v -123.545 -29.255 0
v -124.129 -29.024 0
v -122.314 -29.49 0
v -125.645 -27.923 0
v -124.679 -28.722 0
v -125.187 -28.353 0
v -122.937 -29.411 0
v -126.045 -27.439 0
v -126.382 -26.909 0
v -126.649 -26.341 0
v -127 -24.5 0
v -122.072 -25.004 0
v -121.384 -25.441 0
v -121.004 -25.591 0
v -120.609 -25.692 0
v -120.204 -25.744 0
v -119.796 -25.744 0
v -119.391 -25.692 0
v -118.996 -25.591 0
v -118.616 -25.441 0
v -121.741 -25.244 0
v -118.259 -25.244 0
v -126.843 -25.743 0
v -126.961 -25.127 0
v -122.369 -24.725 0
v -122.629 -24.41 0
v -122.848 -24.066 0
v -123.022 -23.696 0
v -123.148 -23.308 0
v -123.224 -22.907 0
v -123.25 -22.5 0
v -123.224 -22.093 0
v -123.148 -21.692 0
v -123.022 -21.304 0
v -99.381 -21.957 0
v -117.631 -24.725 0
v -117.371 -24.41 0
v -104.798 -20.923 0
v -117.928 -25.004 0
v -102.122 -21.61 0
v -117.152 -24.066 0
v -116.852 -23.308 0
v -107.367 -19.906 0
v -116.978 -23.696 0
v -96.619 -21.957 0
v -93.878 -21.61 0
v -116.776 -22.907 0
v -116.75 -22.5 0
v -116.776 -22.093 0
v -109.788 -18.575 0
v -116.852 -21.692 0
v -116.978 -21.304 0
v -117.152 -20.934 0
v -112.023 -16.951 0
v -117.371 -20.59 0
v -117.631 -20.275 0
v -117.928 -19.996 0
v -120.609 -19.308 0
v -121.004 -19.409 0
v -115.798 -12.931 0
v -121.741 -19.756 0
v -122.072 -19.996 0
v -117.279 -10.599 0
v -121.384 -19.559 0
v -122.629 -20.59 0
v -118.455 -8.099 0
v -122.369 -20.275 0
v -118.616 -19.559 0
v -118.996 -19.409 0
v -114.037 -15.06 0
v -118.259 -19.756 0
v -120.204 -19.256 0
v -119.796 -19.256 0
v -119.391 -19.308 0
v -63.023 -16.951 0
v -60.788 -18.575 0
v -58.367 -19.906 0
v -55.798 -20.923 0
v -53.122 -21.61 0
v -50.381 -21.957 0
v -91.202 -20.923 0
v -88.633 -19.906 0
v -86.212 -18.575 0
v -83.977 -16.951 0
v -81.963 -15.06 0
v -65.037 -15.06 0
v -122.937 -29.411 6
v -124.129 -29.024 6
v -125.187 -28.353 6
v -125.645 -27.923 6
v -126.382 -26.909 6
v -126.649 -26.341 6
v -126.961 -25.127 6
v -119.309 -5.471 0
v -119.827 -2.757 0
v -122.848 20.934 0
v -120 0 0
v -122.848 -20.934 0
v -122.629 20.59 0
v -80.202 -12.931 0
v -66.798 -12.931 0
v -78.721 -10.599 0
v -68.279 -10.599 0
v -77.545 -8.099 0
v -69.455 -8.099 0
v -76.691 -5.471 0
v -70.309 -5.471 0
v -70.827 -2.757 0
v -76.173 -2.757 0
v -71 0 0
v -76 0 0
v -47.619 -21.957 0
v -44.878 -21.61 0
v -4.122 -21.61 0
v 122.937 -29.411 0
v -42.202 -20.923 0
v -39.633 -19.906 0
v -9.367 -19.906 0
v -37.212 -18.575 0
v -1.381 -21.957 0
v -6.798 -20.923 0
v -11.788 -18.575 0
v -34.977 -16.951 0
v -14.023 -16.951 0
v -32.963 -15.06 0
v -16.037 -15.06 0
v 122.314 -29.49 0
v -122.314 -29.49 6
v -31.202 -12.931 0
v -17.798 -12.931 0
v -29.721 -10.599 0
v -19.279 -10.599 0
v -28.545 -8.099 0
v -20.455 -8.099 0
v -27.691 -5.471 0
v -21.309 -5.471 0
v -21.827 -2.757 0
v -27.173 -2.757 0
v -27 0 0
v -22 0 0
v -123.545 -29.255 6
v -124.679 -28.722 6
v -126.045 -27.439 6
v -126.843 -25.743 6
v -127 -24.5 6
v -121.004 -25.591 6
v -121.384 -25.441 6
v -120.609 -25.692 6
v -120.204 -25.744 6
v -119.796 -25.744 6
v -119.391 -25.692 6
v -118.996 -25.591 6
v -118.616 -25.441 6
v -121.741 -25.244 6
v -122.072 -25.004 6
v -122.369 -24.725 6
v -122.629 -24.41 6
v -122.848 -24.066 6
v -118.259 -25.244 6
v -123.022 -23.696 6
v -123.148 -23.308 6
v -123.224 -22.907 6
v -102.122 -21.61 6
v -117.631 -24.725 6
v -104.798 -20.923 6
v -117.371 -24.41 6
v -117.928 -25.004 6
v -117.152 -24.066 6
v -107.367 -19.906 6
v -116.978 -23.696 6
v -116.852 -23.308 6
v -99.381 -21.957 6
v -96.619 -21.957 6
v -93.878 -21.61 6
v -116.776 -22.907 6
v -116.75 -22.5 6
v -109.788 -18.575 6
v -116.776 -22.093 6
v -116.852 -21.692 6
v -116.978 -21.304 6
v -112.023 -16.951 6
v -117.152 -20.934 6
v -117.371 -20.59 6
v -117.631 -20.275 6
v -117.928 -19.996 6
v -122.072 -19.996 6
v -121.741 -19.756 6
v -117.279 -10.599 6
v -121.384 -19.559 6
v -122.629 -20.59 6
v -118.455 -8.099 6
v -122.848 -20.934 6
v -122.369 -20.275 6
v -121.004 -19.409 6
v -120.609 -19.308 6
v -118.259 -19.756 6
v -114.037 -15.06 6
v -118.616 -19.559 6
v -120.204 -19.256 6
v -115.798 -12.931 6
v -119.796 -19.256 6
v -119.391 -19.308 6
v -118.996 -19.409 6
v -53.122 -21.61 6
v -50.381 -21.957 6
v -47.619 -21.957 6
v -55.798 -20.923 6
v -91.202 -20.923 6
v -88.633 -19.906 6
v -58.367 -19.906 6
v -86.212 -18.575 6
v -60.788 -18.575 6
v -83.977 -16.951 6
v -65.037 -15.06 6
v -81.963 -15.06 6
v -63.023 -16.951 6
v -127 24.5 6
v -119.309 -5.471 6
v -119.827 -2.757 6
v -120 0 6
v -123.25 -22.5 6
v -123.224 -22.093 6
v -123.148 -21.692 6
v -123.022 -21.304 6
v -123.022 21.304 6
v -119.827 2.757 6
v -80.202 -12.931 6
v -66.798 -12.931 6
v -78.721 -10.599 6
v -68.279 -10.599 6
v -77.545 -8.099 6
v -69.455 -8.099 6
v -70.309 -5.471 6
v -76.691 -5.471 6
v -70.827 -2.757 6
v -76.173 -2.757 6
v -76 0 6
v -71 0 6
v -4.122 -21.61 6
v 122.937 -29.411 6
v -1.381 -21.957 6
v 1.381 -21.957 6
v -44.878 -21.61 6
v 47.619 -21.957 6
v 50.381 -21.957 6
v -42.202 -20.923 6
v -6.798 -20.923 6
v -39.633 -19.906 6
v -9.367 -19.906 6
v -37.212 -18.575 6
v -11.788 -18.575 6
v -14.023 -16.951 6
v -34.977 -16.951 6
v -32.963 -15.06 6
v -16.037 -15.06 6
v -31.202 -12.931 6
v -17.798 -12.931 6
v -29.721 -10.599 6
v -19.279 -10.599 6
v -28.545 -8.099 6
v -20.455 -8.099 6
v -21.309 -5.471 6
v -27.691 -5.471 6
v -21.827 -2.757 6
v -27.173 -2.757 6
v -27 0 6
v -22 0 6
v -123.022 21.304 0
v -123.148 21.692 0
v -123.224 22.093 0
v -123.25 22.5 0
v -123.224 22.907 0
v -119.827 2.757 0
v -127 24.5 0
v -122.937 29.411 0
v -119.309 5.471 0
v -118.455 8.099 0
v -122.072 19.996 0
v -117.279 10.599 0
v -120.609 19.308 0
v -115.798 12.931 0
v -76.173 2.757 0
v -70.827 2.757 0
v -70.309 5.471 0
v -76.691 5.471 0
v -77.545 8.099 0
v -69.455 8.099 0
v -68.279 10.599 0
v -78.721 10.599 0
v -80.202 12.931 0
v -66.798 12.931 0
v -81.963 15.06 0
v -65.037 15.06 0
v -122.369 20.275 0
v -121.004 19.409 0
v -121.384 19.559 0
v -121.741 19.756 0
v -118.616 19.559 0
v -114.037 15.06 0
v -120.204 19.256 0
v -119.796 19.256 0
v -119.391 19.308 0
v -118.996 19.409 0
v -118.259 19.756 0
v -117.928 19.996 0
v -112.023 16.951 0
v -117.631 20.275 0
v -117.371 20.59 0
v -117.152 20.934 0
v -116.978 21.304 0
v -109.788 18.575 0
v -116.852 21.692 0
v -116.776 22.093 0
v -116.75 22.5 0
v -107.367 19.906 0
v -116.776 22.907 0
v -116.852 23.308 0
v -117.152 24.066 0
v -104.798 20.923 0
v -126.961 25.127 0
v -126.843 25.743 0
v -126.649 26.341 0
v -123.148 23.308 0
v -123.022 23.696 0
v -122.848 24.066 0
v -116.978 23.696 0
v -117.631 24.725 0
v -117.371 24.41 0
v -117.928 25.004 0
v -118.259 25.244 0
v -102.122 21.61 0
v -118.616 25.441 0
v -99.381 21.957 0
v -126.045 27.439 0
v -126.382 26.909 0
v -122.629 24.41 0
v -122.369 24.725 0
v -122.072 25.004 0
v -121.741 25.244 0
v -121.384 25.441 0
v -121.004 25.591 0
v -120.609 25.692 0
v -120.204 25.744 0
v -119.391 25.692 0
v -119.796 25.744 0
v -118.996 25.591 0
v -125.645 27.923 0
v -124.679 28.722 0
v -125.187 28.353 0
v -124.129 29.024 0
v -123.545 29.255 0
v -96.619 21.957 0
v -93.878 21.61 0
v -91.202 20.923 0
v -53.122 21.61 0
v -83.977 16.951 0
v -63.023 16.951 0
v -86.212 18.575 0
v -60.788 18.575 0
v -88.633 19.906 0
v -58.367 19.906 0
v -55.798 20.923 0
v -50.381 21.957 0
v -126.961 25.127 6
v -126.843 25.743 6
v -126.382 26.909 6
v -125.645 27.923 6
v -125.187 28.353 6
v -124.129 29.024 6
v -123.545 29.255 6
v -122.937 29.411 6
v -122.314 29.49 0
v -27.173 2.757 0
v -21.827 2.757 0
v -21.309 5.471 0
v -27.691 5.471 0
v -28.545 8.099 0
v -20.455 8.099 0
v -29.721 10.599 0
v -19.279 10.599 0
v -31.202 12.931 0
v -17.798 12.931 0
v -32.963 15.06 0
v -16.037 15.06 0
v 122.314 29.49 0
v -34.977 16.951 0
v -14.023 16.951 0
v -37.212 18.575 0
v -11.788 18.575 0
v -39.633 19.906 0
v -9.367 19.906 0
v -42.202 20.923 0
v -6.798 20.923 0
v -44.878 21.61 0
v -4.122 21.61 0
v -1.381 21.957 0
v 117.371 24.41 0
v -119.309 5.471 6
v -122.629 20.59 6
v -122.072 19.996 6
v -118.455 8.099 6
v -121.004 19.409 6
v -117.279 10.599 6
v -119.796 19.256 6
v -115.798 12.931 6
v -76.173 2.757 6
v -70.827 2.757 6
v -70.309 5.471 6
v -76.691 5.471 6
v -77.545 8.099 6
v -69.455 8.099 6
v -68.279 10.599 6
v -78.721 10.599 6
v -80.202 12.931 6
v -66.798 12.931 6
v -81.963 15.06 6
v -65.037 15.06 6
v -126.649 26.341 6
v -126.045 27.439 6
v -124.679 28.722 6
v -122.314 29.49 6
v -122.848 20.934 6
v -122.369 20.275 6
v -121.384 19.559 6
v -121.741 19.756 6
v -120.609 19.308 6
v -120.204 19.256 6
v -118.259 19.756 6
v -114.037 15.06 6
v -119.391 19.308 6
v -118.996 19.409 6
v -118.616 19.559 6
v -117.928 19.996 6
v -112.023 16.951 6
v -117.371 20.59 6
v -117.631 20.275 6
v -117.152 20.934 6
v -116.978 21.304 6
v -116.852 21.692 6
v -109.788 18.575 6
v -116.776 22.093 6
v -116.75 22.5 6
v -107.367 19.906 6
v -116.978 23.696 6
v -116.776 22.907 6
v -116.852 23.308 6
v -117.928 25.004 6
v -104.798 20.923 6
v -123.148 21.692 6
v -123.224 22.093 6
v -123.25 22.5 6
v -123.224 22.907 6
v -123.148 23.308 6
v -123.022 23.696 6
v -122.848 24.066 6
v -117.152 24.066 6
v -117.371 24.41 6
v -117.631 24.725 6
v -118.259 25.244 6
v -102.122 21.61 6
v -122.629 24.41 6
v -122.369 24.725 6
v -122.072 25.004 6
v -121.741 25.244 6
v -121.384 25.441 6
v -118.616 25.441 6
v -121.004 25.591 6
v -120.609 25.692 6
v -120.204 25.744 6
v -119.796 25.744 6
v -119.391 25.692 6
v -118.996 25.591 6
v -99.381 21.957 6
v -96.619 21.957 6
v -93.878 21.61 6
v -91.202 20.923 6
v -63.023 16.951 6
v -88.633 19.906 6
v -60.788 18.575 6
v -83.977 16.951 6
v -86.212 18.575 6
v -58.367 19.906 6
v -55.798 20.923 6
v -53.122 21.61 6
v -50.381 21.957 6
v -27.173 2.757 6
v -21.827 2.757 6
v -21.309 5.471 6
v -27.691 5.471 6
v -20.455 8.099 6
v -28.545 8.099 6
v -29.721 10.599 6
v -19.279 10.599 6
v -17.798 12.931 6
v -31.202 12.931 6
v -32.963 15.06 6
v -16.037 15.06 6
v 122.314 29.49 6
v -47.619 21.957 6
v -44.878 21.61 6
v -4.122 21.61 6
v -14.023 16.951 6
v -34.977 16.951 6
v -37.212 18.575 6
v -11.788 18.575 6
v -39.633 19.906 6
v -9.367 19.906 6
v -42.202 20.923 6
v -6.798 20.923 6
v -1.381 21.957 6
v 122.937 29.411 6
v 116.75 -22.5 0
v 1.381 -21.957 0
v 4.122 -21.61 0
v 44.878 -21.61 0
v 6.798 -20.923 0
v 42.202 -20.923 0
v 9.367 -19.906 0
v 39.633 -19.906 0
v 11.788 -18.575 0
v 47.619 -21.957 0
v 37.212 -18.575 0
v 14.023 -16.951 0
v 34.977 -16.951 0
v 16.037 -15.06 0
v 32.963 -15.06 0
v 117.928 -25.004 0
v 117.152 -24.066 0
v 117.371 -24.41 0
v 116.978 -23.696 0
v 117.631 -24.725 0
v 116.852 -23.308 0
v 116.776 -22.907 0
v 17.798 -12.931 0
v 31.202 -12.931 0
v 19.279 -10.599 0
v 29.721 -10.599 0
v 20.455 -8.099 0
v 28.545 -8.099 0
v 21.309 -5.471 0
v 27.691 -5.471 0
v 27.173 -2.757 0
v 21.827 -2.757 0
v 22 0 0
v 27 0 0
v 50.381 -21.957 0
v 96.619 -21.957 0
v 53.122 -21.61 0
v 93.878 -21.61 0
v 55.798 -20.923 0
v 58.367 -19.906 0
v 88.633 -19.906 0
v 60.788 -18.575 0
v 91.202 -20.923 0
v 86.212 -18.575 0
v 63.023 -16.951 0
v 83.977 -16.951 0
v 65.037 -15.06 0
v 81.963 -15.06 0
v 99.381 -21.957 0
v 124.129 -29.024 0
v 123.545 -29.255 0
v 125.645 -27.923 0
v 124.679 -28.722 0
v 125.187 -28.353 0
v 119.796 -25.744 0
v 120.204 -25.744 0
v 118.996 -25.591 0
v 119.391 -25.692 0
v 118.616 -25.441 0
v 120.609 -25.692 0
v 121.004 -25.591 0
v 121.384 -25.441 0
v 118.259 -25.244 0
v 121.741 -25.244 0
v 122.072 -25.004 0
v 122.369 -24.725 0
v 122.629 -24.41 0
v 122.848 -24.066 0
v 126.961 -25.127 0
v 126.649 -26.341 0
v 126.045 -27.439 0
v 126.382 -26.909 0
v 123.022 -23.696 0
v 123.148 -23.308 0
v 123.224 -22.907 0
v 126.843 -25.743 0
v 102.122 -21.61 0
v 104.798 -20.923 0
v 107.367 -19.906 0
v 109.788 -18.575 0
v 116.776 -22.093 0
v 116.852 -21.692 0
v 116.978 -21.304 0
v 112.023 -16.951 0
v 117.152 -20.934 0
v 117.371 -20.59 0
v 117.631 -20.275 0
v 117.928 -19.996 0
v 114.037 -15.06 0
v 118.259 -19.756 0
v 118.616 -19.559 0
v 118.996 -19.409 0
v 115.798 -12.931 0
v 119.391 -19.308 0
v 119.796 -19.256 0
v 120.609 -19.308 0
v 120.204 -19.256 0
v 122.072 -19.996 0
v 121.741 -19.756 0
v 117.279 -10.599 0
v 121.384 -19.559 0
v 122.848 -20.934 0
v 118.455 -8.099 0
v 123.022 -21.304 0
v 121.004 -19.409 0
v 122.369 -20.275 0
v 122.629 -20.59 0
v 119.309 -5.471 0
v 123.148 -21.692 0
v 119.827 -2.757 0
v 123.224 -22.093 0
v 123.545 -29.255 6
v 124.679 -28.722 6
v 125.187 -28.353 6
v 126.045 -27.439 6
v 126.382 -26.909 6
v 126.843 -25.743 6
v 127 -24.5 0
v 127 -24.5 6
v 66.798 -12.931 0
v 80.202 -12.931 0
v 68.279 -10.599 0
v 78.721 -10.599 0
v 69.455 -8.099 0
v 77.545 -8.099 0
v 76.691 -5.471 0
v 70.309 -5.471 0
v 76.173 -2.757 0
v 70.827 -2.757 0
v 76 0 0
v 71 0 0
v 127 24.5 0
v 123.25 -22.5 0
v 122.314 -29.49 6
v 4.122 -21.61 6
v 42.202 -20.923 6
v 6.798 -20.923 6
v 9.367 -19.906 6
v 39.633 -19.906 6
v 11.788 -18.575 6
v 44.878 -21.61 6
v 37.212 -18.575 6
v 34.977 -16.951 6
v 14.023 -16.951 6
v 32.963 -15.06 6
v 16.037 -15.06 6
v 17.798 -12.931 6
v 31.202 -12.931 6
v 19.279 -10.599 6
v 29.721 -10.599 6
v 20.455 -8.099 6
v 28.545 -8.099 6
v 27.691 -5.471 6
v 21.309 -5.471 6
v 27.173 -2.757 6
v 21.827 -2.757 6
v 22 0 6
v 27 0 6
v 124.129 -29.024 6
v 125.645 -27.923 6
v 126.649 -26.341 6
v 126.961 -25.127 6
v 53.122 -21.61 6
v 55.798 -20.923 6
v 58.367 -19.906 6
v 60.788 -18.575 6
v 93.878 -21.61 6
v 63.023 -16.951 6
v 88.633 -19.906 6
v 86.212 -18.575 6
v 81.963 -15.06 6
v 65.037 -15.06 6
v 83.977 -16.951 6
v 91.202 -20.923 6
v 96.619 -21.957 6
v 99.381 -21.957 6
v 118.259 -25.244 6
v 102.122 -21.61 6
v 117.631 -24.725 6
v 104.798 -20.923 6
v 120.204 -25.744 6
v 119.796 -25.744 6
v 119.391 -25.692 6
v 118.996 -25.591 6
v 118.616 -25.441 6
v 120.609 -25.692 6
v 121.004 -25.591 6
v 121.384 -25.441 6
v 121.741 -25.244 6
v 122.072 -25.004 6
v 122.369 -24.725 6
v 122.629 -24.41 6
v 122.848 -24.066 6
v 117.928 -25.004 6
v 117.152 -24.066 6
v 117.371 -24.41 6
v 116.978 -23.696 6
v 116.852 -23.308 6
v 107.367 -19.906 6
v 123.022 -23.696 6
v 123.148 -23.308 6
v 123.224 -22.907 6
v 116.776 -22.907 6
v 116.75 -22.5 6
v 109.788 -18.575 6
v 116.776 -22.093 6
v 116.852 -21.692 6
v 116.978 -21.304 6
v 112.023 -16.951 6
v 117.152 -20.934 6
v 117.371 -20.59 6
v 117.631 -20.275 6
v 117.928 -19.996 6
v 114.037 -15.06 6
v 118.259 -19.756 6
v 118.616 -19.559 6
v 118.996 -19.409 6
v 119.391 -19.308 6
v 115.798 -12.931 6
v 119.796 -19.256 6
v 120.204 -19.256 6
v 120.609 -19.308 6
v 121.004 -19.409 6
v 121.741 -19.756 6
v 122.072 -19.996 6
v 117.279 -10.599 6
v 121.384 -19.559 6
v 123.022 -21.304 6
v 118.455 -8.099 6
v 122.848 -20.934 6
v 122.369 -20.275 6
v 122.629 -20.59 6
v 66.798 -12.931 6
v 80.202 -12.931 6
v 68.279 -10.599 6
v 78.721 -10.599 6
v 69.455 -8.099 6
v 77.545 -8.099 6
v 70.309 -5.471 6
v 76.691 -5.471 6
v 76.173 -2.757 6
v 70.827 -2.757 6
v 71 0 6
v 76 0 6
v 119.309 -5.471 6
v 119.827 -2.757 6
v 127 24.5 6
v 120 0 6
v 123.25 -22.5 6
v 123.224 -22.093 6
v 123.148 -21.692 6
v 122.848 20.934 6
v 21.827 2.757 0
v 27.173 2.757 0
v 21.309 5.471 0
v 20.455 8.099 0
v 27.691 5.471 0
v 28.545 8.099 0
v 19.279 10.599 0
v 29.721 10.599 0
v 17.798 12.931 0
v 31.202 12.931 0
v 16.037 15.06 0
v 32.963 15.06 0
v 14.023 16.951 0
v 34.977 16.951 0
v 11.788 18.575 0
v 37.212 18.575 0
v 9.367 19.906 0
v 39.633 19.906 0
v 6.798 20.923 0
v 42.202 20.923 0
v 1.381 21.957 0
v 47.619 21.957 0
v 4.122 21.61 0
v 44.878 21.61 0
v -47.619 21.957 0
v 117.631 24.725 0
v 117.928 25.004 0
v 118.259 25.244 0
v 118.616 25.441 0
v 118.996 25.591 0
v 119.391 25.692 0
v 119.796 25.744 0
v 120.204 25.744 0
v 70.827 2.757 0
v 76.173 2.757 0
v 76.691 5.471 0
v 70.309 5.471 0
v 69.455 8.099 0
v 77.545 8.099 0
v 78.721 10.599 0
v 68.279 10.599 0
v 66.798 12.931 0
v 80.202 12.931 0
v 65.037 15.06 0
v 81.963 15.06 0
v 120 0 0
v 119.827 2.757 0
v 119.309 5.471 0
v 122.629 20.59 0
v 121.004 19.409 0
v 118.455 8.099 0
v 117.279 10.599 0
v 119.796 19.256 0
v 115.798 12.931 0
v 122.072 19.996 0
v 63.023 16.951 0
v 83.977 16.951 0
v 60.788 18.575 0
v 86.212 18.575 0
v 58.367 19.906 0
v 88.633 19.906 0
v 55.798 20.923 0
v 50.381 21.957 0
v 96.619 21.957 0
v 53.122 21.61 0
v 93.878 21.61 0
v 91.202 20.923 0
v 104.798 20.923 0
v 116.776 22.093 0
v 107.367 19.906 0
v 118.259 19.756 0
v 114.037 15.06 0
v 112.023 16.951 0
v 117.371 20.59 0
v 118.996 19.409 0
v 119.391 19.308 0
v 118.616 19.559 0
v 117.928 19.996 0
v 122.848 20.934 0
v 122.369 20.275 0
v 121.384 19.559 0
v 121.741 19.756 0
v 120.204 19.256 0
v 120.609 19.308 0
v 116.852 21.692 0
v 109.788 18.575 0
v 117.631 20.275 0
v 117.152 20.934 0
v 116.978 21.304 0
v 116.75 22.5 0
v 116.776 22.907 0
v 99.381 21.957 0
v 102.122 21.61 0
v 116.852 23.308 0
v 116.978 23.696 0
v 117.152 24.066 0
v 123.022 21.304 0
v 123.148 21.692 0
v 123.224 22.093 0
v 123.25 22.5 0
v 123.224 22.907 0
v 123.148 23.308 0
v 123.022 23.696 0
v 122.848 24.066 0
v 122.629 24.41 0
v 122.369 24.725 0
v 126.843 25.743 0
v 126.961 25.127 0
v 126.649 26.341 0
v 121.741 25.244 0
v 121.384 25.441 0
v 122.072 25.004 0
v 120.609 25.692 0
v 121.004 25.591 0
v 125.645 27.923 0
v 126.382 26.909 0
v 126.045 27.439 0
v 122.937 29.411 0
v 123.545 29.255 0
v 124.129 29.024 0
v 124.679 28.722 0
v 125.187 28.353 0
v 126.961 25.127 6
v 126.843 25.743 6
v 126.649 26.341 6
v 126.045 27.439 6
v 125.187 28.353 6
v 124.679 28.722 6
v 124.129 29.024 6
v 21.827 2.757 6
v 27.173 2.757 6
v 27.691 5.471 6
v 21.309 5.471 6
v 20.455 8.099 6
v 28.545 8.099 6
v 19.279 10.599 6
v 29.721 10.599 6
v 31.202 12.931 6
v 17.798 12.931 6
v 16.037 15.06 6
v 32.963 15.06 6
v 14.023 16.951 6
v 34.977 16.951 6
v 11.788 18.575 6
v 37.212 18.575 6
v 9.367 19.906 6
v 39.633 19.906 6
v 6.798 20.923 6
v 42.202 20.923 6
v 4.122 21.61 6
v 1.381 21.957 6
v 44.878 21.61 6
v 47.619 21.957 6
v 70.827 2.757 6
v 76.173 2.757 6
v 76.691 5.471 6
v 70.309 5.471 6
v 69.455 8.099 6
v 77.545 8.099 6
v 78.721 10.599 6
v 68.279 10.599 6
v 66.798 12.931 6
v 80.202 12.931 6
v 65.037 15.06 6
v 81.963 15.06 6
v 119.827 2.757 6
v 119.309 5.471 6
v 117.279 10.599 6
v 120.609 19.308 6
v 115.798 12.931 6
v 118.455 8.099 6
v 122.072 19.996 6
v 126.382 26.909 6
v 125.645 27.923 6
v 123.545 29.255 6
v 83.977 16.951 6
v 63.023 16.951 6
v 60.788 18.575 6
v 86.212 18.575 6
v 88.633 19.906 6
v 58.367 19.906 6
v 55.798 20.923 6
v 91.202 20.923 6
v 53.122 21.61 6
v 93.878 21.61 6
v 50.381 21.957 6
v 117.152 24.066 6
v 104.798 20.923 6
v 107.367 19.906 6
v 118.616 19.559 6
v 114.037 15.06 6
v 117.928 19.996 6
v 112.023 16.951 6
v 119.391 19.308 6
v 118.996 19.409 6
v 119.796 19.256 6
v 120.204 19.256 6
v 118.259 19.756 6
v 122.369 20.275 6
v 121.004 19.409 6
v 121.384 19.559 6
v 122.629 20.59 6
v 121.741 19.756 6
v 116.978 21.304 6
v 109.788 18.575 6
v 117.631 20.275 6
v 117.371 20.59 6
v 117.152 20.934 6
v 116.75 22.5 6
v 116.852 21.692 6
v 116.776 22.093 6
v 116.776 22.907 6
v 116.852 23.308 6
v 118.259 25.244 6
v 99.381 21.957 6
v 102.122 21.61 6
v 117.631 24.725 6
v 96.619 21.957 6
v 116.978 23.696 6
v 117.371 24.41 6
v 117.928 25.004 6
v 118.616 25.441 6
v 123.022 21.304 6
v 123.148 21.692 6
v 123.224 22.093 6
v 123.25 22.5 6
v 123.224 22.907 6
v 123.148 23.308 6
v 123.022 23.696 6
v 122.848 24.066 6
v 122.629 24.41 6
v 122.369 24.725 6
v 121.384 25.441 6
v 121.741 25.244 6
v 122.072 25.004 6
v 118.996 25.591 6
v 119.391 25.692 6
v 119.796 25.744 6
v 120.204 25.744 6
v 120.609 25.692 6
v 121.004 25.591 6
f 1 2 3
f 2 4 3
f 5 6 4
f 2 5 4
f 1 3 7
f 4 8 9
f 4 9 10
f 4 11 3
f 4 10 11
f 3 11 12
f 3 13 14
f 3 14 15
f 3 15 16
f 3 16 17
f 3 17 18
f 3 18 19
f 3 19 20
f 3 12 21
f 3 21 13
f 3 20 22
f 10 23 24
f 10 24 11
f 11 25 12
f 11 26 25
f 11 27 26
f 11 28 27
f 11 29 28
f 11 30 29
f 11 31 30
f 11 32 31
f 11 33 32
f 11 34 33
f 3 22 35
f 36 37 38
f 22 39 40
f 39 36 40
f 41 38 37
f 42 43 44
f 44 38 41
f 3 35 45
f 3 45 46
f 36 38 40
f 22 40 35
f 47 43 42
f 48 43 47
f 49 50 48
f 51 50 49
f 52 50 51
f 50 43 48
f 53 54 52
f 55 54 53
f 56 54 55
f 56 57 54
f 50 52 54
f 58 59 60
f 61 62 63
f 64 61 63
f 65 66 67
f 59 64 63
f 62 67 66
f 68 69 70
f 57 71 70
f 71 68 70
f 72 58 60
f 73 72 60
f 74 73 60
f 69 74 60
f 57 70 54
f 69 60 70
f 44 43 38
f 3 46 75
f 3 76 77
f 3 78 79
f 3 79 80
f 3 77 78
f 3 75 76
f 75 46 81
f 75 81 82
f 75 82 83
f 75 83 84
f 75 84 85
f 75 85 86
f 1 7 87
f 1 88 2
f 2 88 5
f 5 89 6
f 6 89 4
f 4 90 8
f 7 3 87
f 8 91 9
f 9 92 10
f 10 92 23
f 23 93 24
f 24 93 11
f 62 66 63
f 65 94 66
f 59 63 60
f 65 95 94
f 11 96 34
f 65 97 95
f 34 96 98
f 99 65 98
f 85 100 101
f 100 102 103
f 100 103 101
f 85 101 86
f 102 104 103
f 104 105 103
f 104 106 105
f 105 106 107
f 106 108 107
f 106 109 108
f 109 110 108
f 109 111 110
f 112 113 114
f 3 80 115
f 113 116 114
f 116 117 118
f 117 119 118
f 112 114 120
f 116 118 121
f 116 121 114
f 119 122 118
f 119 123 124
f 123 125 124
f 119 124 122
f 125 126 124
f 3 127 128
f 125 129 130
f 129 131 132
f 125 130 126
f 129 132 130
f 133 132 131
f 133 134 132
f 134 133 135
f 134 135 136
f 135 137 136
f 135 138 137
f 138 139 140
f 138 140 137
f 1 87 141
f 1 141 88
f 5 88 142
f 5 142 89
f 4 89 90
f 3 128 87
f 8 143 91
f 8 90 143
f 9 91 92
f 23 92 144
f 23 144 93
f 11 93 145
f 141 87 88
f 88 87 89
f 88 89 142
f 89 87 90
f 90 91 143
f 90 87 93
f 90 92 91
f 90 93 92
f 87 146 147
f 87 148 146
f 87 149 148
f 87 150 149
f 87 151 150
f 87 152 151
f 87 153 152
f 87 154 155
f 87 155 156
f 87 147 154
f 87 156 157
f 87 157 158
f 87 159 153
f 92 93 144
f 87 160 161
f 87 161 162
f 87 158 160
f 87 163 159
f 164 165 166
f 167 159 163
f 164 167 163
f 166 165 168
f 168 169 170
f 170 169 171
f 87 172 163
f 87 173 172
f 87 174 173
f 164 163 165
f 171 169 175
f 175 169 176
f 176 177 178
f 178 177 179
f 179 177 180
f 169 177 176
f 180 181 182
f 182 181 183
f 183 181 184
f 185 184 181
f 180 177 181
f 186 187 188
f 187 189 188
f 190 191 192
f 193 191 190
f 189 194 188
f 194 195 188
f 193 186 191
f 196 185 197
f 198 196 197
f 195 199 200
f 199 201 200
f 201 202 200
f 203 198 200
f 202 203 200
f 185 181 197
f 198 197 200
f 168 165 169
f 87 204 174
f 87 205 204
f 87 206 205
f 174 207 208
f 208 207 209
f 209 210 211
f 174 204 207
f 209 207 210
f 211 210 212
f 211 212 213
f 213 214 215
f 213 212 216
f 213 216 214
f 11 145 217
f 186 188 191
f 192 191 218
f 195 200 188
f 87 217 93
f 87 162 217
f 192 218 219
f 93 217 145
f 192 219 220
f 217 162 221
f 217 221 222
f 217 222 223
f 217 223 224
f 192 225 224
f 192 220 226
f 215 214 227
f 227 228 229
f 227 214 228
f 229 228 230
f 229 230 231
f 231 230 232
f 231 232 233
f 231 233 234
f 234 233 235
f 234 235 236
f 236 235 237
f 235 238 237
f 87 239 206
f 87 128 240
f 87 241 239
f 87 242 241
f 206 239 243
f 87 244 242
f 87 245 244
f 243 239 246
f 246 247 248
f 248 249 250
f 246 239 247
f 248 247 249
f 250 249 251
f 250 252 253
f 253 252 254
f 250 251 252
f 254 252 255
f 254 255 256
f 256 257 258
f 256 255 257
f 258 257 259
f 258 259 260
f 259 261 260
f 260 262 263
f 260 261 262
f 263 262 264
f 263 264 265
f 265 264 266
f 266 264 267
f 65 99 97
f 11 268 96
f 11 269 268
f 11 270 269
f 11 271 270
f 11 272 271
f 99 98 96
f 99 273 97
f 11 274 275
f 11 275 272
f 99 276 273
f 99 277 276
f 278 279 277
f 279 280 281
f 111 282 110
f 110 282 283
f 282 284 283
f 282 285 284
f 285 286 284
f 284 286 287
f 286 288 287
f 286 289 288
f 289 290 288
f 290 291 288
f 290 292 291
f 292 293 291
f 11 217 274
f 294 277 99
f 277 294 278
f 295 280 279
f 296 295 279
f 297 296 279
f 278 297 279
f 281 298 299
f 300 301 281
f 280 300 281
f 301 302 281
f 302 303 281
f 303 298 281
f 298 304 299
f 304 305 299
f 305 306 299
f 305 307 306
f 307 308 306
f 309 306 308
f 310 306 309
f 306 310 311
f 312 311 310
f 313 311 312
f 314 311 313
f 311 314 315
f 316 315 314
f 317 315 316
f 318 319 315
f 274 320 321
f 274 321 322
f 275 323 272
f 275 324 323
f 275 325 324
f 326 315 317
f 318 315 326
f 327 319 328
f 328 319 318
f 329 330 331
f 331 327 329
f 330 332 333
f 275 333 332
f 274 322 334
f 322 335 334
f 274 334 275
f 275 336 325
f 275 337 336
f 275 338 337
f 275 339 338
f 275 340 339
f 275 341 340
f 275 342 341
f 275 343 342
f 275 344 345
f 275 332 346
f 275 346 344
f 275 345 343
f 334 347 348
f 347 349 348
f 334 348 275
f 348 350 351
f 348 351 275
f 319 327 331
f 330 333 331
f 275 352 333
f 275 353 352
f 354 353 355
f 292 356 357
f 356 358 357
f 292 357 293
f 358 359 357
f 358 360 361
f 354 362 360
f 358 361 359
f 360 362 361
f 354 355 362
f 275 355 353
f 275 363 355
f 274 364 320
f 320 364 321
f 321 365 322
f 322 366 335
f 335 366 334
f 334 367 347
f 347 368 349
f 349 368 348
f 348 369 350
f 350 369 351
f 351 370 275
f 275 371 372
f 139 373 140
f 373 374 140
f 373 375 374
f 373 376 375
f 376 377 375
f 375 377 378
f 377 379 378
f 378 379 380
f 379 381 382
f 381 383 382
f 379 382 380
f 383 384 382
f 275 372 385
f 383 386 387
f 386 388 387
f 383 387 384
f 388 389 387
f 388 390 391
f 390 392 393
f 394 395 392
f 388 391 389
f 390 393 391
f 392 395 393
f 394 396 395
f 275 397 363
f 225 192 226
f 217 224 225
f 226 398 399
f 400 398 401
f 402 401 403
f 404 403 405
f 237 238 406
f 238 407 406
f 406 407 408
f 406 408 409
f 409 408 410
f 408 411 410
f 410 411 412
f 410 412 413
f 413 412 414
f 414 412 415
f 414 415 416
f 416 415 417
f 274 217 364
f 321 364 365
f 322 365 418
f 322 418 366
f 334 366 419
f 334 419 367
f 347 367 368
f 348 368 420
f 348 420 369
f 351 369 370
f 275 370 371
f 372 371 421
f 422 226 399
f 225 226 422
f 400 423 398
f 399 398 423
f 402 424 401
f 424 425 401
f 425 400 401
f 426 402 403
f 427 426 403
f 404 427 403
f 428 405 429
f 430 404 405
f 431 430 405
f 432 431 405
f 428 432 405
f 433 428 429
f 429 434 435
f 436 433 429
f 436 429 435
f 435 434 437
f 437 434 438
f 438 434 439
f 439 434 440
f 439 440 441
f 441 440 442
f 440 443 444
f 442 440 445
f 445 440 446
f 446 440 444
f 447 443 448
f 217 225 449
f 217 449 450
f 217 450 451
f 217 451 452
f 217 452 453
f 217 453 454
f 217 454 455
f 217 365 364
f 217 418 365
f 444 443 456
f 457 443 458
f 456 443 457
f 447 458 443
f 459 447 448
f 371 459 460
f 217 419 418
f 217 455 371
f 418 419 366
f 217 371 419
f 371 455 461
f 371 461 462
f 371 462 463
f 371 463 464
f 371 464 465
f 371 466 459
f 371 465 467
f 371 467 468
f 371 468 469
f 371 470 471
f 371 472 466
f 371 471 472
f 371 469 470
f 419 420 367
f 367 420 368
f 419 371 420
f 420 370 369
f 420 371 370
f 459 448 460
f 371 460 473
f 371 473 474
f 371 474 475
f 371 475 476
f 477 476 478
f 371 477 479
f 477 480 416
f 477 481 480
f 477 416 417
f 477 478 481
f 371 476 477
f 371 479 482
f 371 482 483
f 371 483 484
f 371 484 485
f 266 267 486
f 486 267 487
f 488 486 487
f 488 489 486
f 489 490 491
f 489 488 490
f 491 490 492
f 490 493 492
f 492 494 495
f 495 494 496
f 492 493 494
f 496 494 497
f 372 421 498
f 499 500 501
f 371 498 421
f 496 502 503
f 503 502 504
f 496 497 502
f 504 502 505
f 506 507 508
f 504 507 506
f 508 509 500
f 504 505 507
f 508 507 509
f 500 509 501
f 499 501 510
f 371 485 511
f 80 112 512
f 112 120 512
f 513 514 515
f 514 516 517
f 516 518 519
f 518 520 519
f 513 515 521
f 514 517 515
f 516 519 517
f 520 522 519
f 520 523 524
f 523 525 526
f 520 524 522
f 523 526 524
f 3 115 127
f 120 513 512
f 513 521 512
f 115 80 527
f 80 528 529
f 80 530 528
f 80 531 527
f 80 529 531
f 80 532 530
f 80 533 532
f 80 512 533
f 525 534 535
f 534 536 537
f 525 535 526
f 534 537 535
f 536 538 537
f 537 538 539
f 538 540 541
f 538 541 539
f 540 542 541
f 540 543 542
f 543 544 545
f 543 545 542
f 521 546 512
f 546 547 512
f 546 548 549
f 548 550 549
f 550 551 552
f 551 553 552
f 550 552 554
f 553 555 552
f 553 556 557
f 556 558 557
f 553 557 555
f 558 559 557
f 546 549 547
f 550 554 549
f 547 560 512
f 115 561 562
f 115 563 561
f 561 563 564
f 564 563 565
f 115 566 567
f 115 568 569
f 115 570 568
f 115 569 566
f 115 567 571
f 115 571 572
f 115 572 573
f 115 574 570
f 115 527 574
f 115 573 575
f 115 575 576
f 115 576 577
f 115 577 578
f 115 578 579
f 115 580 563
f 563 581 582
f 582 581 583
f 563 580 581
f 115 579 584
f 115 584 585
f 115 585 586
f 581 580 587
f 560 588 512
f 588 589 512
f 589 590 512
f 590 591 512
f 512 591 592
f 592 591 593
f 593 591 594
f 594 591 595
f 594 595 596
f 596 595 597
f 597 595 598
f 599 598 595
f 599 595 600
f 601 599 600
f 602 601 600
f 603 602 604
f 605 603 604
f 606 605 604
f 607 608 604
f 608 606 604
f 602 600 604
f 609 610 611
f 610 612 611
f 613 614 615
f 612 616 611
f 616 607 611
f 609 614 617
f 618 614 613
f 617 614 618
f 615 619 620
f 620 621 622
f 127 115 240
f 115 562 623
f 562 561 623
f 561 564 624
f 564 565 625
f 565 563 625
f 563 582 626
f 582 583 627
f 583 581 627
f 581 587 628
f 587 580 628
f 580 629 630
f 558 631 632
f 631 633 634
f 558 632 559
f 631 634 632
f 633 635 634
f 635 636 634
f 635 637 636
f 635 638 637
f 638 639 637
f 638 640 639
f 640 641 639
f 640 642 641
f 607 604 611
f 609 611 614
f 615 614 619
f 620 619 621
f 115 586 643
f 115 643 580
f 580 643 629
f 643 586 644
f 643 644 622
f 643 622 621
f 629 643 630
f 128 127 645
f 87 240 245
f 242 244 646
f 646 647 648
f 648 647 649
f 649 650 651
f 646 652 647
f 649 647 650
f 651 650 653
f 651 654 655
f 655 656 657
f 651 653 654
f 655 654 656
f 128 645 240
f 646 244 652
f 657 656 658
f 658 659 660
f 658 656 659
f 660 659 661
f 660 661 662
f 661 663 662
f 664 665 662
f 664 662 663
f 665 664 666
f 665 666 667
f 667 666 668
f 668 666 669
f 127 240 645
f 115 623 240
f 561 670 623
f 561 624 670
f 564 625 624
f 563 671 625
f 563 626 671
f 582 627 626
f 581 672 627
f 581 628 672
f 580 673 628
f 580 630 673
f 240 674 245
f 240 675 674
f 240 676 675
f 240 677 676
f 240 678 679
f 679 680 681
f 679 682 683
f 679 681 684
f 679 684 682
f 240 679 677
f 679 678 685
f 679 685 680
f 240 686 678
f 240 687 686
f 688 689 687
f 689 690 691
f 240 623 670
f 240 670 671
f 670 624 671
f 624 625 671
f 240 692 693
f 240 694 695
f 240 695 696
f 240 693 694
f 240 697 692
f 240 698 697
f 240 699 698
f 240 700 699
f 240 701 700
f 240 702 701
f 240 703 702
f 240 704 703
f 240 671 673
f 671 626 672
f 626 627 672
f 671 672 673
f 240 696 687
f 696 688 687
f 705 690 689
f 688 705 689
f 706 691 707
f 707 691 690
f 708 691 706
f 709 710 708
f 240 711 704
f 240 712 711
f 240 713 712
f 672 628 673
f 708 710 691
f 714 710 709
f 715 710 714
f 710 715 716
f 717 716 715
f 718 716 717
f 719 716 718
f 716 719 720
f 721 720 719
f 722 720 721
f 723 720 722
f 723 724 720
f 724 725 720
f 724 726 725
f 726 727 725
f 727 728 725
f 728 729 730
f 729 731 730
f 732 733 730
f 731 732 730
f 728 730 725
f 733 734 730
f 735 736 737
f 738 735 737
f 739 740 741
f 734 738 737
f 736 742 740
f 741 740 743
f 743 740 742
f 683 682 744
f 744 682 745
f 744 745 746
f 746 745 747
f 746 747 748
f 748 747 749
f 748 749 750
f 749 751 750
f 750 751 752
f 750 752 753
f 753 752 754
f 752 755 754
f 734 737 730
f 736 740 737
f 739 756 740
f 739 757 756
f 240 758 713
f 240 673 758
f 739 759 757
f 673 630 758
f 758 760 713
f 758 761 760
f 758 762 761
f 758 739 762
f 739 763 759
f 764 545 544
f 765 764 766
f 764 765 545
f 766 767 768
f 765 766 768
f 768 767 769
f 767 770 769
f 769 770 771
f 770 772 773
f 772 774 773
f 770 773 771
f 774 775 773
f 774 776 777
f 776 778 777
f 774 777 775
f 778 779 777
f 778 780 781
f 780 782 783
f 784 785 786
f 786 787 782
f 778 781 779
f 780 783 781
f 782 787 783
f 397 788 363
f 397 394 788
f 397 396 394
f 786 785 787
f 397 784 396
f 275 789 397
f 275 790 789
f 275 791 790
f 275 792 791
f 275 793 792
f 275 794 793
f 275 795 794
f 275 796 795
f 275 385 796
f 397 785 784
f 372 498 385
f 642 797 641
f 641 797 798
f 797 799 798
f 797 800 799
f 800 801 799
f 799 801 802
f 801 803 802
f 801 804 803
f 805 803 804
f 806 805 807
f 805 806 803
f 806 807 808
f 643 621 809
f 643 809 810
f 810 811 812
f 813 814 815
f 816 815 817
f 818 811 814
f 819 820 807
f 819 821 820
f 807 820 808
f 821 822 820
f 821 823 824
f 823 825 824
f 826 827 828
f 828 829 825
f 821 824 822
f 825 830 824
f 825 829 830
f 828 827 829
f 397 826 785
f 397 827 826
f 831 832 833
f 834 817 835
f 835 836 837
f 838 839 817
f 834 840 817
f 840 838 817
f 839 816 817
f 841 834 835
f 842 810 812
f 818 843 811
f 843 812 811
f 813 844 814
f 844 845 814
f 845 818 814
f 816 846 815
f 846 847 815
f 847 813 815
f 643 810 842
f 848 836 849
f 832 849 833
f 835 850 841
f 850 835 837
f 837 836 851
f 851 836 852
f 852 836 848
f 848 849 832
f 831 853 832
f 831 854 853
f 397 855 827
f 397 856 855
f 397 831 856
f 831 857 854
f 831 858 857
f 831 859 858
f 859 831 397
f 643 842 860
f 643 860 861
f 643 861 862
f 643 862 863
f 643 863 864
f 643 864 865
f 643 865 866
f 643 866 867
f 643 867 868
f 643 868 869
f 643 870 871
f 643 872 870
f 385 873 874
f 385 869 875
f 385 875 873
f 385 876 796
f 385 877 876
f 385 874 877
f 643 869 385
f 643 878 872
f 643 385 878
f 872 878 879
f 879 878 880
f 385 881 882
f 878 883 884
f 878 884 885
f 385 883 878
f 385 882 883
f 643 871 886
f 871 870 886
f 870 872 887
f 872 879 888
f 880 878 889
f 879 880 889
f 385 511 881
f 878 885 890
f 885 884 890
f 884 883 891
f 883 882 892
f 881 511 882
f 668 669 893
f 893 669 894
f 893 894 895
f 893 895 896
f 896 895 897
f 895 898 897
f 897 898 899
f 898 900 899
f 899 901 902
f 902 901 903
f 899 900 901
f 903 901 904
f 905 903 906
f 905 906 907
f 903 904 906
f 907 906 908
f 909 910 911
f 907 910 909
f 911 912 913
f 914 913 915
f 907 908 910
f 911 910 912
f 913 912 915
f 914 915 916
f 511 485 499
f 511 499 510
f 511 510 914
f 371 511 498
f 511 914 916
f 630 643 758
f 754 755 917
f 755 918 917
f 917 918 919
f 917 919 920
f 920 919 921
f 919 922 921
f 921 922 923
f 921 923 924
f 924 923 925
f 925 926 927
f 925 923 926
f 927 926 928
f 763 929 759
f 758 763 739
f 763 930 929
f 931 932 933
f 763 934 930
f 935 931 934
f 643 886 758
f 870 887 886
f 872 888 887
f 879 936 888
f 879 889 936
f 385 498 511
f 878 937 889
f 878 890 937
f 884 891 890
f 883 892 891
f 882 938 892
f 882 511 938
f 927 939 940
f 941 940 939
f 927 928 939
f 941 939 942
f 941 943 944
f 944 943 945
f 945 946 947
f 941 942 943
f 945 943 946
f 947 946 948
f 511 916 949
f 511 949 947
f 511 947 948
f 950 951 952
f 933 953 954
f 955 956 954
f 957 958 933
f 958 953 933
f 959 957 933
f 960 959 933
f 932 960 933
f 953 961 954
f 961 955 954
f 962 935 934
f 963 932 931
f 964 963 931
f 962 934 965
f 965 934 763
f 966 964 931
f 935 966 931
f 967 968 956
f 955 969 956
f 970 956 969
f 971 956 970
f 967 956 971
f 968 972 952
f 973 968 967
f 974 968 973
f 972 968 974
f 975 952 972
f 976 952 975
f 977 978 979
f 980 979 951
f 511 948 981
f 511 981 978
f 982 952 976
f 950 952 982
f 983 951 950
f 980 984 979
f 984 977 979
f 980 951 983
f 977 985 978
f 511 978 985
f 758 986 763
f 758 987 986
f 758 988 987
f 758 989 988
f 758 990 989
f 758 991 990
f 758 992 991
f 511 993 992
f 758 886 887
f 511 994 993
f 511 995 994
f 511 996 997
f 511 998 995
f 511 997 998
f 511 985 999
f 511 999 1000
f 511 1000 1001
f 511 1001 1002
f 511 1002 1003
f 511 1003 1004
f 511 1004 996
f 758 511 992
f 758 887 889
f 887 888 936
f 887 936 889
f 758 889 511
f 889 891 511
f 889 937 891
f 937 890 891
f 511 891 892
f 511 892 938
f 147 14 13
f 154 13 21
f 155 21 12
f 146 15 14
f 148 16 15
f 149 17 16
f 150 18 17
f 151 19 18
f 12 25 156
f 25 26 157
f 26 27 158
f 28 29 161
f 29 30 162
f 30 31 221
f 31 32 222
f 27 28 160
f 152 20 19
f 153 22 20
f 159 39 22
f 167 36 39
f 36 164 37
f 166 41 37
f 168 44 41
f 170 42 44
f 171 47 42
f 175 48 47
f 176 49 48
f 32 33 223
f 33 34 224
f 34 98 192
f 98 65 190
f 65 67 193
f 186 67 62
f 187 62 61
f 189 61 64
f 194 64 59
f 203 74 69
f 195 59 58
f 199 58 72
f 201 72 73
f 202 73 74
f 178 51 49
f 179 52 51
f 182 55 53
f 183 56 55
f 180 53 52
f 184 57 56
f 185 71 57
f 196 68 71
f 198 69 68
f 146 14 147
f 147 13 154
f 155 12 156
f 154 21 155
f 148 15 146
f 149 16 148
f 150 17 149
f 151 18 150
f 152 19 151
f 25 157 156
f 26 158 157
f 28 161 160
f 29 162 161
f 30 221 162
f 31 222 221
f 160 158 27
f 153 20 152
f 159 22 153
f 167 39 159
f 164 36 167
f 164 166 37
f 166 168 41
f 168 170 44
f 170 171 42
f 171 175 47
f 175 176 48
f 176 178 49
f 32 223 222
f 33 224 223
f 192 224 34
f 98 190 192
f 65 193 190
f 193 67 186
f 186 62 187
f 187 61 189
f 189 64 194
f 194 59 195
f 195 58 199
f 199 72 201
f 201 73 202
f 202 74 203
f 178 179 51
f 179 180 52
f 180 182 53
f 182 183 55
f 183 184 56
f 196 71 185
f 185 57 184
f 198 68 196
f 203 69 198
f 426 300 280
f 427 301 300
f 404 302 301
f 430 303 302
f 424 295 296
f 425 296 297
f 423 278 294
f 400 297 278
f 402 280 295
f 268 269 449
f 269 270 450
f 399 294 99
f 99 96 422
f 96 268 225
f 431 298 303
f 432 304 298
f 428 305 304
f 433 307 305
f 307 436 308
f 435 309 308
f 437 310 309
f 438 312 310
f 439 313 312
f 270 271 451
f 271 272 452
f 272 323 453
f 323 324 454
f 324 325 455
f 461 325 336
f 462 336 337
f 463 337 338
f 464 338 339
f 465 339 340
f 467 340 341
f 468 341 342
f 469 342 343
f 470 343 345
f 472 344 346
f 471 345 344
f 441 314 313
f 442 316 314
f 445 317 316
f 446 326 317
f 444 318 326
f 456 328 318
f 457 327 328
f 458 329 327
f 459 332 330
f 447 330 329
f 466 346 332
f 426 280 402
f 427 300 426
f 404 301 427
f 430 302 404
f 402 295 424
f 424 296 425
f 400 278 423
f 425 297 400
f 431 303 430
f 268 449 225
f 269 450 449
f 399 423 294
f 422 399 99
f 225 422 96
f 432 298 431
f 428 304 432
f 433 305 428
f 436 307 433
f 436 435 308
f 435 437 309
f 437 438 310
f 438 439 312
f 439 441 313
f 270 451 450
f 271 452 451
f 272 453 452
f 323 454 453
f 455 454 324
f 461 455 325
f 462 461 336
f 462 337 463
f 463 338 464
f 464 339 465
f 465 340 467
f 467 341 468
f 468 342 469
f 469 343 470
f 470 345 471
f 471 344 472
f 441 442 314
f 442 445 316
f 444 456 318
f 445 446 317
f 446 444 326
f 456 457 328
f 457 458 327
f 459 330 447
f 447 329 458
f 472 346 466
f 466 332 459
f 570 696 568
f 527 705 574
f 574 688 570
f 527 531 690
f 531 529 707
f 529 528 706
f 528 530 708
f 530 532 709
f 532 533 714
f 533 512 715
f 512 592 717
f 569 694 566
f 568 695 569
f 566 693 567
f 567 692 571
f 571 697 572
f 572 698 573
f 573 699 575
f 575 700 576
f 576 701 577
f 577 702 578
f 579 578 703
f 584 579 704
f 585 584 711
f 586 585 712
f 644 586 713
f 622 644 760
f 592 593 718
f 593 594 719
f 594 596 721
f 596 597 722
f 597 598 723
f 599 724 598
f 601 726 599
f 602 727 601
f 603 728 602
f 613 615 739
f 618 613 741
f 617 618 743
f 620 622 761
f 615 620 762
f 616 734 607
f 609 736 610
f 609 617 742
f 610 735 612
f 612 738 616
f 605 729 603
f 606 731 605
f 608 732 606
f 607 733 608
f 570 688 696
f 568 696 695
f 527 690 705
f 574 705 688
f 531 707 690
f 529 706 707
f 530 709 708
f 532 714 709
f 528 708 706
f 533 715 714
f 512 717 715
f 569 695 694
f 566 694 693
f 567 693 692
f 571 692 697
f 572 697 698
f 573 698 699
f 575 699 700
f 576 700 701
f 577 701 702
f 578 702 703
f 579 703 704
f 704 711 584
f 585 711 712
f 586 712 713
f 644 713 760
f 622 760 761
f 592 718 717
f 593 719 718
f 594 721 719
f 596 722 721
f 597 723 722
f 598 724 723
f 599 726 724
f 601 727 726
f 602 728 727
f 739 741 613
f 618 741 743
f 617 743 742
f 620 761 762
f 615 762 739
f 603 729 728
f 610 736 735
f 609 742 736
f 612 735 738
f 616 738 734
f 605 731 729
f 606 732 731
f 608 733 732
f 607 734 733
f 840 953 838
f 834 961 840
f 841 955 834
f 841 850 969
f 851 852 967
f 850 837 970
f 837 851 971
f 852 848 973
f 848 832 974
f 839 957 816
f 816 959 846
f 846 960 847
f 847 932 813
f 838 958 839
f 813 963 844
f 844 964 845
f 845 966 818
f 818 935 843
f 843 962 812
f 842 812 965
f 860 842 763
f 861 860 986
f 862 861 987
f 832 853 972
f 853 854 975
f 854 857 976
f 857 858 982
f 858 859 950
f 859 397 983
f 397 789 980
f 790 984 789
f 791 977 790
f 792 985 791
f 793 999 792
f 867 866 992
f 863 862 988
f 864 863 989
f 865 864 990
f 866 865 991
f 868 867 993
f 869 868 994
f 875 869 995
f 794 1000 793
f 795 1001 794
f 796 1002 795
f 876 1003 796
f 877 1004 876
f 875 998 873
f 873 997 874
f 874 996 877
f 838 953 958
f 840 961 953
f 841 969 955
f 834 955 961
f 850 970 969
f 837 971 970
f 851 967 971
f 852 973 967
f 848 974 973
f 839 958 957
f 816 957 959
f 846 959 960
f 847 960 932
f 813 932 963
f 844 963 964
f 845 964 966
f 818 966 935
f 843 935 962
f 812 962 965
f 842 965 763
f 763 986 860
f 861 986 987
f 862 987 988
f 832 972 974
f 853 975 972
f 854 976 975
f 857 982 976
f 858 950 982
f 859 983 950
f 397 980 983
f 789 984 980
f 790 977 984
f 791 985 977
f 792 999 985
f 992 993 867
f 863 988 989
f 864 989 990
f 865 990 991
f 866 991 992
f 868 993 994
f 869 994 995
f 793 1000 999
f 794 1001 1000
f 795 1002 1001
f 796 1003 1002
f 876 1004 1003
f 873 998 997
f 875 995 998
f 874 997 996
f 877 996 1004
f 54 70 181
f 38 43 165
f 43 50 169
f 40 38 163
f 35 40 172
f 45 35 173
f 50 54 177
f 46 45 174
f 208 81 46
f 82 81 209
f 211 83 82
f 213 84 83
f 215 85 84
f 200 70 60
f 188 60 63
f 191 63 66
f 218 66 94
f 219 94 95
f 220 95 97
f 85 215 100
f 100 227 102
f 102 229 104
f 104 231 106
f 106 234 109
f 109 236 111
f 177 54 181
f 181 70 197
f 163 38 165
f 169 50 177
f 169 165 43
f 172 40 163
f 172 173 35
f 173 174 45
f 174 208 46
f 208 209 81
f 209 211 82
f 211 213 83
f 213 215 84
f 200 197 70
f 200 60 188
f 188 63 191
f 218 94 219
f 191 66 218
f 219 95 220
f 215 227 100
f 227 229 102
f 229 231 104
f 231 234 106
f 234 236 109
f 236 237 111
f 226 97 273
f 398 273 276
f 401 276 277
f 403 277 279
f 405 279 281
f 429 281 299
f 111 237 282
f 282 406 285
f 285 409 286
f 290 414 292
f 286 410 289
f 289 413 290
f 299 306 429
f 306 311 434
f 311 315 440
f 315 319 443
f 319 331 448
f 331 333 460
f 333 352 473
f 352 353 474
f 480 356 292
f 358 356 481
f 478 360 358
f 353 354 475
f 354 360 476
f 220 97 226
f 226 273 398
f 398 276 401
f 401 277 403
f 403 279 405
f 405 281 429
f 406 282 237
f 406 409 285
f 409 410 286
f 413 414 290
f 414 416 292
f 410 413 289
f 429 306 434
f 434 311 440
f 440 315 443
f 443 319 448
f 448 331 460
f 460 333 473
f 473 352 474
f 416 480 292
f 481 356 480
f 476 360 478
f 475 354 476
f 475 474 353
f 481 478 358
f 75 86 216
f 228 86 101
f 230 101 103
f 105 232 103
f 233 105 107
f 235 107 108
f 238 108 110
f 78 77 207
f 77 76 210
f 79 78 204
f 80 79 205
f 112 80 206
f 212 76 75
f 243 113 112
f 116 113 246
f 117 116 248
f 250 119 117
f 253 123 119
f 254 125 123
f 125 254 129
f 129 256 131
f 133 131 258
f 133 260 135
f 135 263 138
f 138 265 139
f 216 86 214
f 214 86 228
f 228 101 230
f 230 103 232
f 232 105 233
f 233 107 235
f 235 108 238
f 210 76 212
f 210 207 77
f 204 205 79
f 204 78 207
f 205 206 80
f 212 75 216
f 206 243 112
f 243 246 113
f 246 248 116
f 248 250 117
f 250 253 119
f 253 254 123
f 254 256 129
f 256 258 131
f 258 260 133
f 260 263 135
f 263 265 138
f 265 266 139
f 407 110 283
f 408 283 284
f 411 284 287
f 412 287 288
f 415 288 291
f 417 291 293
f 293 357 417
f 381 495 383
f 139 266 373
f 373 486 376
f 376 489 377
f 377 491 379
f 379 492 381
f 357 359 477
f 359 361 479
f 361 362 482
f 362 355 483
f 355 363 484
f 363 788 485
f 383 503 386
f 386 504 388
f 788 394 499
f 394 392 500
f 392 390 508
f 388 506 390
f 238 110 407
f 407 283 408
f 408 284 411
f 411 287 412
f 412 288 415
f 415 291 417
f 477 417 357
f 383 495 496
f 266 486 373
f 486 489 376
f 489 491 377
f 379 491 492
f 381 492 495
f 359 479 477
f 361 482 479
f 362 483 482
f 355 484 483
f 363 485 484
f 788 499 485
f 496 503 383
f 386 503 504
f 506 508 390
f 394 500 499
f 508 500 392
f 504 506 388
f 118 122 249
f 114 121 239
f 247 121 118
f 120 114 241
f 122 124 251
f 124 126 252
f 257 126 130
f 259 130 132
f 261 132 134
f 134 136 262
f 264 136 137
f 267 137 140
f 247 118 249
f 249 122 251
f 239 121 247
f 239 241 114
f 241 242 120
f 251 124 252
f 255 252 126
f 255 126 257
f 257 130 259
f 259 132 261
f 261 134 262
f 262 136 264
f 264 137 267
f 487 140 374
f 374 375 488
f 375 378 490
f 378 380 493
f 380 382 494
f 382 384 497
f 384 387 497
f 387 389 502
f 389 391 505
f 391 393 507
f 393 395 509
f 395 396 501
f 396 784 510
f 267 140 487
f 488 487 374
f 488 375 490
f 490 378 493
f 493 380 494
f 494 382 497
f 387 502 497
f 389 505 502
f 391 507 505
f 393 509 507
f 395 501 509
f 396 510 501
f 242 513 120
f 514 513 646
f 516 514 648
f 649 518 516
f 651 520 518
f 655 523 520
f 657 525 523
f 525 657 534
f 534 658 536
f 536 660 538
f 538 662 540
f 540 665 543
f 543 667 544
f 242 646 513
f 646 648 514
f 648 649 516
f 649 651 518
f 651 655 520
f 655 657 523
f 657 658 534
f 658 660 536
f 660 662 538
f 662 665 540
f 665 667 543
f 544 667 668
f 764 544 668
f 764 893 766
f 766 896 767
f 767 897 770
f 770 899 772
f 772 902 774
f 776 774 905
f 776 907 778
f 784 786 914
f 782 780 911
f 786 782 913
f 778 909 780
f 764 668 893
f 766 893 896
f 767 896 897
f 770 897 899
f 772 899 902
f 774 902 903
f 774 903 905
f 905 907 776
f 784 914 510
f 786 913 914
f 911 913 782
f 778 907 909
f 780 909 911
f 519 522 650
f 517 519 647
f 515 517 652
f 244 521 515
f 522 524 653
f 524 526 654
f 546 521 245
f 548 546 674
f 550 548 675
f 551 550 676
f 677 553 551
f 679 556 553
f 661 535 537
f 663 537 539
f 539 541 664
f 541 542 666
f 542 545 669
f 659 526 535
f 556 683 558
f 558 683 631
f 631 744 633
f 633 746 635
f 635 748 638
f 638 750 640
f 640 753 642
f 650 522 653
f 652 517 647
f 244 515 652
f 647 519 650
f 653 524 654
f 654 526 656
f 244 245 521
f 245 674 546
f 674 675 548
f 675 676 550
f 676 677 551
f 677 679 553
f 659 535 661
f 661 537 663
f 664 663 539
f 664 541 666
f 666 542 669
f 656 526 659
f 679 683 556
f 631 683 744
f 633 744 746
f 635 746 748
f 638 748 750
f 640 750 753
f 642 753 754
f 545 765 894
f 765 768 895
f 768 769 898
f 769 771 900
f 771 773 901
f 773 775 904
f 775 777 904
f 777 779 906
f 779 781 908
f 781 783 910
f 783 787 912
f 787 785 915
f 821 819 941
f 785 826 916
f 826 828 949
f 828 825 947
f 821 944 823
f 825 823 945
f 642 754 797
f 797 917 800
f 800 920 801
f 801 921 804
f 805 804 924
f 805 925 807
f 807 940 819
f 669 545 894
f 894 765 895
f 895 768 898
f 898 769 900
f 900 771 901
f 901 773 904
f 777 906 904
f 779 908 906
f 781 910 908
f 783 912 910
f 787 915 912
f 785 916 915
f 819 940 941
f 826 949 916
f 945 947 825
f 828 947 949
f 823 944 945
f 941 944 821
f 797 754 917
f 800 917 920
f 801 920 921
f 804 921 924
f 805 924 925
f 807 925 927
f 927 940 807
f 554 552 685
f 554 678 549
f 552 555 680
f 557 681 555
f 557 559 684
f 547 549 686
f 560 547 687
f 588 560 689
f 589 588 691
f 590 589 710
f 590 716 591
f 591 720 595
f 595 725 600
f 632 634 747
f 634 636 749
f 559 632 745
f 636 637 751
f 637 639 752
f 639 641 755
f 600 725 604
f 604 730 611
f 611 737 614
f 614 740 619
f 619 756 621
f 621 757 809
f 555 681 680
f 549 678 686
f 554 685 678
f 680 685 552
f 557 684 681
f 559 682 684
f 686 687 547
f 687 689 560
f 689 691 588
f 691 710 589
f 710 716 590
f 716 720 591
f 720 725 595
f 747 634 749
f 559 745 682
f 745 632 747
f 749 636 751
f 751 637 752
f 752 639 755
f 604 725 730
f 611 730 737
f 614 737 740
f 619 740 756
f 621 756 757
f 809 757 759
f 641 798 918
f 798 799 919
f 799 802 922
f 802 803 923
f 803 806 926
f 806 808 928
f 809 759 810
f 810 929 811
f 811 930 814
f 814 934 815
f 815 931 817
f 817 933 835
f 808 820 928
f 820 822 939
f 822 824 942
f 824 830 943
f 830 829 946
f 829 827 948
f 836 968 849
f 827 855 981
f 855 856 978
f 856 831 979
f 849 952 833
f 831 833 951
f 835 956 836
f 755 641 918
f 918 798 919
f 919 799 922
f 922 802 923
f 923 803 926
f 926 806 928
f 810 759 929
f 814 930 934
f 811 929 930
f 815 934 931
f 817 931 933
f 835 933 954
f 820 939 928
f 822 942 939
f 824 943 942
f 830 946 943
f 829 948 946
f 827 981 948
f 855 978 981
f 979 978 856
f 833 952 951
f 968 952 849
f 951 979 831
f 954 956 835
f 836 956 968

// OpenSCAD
$fn = 50;

difference() {
	union() {
		hull() {
			translate(v = [-122.0, 24.5, 0]) {
				cylinder(h = 6, r = 5);
			}
			translate(v = [122.0, 24.5, 0]) {
				cylinder(h = 6, r = 5);
			}
			translate(v = [-122.0, -24.5, 0]) {
				cylinder(h = 6, r = 5);
			}
			translate(v = [122.0, -24.5, 0]) {
				cylinder(h = 6, r = 5);
			}
		}
	}
	union() {
		translate(v = [-120.0, -22.5, -100.0]) {
			cylinder(h = 200, r = 3.25);
		}
		translate(v = [-120.0, 22.5, -100.0]) {
			cylinder(h = 200, r = 3.25);
		}
		translate(v = [120.0, -22.5, -100.0]) {
			cylinder(h = 200, r = 3.25);
		}
		translate(v = [120.0, 22.5, -100.0]) {
			cylinder(h = 200, r = 3.25);
		}
		translate(v = [-120.0, -22.5, -100.0]) {
			cylinder(h = 200, r = 1.8);
		}
		translate(v = [-120.0, 22.5, -100.0]) {
			cylinder(h = 200, r = 1.8);
		}
		translate(v = [120.0, -22.5, -100.0]) {
			cylinder(h = 200, r = 1.8);
		}
		translate(v = [120.0, 22.5, -100.0]) {
			cylinder(h = 200, r = 1.8);
		}
		translate(v = [-98.0, 0, 0.0]) {
			cylinder(h = 6, r = 22.0);
		}
		translate(v = [-49.0, 0, 0.0]) {
			cylinder(h = 6, r = 22.0);
		}
		cylinder(h = 6, r = 22.0);
		translate(v = [49.0, 0, 0.0]) {
			cylinder(h = 6, r = 22.0);
		}
		translate(v = [98.0, 0, 0.0]) {
			cylinder(h = 6, r = 22.0);
		}
	}
}
